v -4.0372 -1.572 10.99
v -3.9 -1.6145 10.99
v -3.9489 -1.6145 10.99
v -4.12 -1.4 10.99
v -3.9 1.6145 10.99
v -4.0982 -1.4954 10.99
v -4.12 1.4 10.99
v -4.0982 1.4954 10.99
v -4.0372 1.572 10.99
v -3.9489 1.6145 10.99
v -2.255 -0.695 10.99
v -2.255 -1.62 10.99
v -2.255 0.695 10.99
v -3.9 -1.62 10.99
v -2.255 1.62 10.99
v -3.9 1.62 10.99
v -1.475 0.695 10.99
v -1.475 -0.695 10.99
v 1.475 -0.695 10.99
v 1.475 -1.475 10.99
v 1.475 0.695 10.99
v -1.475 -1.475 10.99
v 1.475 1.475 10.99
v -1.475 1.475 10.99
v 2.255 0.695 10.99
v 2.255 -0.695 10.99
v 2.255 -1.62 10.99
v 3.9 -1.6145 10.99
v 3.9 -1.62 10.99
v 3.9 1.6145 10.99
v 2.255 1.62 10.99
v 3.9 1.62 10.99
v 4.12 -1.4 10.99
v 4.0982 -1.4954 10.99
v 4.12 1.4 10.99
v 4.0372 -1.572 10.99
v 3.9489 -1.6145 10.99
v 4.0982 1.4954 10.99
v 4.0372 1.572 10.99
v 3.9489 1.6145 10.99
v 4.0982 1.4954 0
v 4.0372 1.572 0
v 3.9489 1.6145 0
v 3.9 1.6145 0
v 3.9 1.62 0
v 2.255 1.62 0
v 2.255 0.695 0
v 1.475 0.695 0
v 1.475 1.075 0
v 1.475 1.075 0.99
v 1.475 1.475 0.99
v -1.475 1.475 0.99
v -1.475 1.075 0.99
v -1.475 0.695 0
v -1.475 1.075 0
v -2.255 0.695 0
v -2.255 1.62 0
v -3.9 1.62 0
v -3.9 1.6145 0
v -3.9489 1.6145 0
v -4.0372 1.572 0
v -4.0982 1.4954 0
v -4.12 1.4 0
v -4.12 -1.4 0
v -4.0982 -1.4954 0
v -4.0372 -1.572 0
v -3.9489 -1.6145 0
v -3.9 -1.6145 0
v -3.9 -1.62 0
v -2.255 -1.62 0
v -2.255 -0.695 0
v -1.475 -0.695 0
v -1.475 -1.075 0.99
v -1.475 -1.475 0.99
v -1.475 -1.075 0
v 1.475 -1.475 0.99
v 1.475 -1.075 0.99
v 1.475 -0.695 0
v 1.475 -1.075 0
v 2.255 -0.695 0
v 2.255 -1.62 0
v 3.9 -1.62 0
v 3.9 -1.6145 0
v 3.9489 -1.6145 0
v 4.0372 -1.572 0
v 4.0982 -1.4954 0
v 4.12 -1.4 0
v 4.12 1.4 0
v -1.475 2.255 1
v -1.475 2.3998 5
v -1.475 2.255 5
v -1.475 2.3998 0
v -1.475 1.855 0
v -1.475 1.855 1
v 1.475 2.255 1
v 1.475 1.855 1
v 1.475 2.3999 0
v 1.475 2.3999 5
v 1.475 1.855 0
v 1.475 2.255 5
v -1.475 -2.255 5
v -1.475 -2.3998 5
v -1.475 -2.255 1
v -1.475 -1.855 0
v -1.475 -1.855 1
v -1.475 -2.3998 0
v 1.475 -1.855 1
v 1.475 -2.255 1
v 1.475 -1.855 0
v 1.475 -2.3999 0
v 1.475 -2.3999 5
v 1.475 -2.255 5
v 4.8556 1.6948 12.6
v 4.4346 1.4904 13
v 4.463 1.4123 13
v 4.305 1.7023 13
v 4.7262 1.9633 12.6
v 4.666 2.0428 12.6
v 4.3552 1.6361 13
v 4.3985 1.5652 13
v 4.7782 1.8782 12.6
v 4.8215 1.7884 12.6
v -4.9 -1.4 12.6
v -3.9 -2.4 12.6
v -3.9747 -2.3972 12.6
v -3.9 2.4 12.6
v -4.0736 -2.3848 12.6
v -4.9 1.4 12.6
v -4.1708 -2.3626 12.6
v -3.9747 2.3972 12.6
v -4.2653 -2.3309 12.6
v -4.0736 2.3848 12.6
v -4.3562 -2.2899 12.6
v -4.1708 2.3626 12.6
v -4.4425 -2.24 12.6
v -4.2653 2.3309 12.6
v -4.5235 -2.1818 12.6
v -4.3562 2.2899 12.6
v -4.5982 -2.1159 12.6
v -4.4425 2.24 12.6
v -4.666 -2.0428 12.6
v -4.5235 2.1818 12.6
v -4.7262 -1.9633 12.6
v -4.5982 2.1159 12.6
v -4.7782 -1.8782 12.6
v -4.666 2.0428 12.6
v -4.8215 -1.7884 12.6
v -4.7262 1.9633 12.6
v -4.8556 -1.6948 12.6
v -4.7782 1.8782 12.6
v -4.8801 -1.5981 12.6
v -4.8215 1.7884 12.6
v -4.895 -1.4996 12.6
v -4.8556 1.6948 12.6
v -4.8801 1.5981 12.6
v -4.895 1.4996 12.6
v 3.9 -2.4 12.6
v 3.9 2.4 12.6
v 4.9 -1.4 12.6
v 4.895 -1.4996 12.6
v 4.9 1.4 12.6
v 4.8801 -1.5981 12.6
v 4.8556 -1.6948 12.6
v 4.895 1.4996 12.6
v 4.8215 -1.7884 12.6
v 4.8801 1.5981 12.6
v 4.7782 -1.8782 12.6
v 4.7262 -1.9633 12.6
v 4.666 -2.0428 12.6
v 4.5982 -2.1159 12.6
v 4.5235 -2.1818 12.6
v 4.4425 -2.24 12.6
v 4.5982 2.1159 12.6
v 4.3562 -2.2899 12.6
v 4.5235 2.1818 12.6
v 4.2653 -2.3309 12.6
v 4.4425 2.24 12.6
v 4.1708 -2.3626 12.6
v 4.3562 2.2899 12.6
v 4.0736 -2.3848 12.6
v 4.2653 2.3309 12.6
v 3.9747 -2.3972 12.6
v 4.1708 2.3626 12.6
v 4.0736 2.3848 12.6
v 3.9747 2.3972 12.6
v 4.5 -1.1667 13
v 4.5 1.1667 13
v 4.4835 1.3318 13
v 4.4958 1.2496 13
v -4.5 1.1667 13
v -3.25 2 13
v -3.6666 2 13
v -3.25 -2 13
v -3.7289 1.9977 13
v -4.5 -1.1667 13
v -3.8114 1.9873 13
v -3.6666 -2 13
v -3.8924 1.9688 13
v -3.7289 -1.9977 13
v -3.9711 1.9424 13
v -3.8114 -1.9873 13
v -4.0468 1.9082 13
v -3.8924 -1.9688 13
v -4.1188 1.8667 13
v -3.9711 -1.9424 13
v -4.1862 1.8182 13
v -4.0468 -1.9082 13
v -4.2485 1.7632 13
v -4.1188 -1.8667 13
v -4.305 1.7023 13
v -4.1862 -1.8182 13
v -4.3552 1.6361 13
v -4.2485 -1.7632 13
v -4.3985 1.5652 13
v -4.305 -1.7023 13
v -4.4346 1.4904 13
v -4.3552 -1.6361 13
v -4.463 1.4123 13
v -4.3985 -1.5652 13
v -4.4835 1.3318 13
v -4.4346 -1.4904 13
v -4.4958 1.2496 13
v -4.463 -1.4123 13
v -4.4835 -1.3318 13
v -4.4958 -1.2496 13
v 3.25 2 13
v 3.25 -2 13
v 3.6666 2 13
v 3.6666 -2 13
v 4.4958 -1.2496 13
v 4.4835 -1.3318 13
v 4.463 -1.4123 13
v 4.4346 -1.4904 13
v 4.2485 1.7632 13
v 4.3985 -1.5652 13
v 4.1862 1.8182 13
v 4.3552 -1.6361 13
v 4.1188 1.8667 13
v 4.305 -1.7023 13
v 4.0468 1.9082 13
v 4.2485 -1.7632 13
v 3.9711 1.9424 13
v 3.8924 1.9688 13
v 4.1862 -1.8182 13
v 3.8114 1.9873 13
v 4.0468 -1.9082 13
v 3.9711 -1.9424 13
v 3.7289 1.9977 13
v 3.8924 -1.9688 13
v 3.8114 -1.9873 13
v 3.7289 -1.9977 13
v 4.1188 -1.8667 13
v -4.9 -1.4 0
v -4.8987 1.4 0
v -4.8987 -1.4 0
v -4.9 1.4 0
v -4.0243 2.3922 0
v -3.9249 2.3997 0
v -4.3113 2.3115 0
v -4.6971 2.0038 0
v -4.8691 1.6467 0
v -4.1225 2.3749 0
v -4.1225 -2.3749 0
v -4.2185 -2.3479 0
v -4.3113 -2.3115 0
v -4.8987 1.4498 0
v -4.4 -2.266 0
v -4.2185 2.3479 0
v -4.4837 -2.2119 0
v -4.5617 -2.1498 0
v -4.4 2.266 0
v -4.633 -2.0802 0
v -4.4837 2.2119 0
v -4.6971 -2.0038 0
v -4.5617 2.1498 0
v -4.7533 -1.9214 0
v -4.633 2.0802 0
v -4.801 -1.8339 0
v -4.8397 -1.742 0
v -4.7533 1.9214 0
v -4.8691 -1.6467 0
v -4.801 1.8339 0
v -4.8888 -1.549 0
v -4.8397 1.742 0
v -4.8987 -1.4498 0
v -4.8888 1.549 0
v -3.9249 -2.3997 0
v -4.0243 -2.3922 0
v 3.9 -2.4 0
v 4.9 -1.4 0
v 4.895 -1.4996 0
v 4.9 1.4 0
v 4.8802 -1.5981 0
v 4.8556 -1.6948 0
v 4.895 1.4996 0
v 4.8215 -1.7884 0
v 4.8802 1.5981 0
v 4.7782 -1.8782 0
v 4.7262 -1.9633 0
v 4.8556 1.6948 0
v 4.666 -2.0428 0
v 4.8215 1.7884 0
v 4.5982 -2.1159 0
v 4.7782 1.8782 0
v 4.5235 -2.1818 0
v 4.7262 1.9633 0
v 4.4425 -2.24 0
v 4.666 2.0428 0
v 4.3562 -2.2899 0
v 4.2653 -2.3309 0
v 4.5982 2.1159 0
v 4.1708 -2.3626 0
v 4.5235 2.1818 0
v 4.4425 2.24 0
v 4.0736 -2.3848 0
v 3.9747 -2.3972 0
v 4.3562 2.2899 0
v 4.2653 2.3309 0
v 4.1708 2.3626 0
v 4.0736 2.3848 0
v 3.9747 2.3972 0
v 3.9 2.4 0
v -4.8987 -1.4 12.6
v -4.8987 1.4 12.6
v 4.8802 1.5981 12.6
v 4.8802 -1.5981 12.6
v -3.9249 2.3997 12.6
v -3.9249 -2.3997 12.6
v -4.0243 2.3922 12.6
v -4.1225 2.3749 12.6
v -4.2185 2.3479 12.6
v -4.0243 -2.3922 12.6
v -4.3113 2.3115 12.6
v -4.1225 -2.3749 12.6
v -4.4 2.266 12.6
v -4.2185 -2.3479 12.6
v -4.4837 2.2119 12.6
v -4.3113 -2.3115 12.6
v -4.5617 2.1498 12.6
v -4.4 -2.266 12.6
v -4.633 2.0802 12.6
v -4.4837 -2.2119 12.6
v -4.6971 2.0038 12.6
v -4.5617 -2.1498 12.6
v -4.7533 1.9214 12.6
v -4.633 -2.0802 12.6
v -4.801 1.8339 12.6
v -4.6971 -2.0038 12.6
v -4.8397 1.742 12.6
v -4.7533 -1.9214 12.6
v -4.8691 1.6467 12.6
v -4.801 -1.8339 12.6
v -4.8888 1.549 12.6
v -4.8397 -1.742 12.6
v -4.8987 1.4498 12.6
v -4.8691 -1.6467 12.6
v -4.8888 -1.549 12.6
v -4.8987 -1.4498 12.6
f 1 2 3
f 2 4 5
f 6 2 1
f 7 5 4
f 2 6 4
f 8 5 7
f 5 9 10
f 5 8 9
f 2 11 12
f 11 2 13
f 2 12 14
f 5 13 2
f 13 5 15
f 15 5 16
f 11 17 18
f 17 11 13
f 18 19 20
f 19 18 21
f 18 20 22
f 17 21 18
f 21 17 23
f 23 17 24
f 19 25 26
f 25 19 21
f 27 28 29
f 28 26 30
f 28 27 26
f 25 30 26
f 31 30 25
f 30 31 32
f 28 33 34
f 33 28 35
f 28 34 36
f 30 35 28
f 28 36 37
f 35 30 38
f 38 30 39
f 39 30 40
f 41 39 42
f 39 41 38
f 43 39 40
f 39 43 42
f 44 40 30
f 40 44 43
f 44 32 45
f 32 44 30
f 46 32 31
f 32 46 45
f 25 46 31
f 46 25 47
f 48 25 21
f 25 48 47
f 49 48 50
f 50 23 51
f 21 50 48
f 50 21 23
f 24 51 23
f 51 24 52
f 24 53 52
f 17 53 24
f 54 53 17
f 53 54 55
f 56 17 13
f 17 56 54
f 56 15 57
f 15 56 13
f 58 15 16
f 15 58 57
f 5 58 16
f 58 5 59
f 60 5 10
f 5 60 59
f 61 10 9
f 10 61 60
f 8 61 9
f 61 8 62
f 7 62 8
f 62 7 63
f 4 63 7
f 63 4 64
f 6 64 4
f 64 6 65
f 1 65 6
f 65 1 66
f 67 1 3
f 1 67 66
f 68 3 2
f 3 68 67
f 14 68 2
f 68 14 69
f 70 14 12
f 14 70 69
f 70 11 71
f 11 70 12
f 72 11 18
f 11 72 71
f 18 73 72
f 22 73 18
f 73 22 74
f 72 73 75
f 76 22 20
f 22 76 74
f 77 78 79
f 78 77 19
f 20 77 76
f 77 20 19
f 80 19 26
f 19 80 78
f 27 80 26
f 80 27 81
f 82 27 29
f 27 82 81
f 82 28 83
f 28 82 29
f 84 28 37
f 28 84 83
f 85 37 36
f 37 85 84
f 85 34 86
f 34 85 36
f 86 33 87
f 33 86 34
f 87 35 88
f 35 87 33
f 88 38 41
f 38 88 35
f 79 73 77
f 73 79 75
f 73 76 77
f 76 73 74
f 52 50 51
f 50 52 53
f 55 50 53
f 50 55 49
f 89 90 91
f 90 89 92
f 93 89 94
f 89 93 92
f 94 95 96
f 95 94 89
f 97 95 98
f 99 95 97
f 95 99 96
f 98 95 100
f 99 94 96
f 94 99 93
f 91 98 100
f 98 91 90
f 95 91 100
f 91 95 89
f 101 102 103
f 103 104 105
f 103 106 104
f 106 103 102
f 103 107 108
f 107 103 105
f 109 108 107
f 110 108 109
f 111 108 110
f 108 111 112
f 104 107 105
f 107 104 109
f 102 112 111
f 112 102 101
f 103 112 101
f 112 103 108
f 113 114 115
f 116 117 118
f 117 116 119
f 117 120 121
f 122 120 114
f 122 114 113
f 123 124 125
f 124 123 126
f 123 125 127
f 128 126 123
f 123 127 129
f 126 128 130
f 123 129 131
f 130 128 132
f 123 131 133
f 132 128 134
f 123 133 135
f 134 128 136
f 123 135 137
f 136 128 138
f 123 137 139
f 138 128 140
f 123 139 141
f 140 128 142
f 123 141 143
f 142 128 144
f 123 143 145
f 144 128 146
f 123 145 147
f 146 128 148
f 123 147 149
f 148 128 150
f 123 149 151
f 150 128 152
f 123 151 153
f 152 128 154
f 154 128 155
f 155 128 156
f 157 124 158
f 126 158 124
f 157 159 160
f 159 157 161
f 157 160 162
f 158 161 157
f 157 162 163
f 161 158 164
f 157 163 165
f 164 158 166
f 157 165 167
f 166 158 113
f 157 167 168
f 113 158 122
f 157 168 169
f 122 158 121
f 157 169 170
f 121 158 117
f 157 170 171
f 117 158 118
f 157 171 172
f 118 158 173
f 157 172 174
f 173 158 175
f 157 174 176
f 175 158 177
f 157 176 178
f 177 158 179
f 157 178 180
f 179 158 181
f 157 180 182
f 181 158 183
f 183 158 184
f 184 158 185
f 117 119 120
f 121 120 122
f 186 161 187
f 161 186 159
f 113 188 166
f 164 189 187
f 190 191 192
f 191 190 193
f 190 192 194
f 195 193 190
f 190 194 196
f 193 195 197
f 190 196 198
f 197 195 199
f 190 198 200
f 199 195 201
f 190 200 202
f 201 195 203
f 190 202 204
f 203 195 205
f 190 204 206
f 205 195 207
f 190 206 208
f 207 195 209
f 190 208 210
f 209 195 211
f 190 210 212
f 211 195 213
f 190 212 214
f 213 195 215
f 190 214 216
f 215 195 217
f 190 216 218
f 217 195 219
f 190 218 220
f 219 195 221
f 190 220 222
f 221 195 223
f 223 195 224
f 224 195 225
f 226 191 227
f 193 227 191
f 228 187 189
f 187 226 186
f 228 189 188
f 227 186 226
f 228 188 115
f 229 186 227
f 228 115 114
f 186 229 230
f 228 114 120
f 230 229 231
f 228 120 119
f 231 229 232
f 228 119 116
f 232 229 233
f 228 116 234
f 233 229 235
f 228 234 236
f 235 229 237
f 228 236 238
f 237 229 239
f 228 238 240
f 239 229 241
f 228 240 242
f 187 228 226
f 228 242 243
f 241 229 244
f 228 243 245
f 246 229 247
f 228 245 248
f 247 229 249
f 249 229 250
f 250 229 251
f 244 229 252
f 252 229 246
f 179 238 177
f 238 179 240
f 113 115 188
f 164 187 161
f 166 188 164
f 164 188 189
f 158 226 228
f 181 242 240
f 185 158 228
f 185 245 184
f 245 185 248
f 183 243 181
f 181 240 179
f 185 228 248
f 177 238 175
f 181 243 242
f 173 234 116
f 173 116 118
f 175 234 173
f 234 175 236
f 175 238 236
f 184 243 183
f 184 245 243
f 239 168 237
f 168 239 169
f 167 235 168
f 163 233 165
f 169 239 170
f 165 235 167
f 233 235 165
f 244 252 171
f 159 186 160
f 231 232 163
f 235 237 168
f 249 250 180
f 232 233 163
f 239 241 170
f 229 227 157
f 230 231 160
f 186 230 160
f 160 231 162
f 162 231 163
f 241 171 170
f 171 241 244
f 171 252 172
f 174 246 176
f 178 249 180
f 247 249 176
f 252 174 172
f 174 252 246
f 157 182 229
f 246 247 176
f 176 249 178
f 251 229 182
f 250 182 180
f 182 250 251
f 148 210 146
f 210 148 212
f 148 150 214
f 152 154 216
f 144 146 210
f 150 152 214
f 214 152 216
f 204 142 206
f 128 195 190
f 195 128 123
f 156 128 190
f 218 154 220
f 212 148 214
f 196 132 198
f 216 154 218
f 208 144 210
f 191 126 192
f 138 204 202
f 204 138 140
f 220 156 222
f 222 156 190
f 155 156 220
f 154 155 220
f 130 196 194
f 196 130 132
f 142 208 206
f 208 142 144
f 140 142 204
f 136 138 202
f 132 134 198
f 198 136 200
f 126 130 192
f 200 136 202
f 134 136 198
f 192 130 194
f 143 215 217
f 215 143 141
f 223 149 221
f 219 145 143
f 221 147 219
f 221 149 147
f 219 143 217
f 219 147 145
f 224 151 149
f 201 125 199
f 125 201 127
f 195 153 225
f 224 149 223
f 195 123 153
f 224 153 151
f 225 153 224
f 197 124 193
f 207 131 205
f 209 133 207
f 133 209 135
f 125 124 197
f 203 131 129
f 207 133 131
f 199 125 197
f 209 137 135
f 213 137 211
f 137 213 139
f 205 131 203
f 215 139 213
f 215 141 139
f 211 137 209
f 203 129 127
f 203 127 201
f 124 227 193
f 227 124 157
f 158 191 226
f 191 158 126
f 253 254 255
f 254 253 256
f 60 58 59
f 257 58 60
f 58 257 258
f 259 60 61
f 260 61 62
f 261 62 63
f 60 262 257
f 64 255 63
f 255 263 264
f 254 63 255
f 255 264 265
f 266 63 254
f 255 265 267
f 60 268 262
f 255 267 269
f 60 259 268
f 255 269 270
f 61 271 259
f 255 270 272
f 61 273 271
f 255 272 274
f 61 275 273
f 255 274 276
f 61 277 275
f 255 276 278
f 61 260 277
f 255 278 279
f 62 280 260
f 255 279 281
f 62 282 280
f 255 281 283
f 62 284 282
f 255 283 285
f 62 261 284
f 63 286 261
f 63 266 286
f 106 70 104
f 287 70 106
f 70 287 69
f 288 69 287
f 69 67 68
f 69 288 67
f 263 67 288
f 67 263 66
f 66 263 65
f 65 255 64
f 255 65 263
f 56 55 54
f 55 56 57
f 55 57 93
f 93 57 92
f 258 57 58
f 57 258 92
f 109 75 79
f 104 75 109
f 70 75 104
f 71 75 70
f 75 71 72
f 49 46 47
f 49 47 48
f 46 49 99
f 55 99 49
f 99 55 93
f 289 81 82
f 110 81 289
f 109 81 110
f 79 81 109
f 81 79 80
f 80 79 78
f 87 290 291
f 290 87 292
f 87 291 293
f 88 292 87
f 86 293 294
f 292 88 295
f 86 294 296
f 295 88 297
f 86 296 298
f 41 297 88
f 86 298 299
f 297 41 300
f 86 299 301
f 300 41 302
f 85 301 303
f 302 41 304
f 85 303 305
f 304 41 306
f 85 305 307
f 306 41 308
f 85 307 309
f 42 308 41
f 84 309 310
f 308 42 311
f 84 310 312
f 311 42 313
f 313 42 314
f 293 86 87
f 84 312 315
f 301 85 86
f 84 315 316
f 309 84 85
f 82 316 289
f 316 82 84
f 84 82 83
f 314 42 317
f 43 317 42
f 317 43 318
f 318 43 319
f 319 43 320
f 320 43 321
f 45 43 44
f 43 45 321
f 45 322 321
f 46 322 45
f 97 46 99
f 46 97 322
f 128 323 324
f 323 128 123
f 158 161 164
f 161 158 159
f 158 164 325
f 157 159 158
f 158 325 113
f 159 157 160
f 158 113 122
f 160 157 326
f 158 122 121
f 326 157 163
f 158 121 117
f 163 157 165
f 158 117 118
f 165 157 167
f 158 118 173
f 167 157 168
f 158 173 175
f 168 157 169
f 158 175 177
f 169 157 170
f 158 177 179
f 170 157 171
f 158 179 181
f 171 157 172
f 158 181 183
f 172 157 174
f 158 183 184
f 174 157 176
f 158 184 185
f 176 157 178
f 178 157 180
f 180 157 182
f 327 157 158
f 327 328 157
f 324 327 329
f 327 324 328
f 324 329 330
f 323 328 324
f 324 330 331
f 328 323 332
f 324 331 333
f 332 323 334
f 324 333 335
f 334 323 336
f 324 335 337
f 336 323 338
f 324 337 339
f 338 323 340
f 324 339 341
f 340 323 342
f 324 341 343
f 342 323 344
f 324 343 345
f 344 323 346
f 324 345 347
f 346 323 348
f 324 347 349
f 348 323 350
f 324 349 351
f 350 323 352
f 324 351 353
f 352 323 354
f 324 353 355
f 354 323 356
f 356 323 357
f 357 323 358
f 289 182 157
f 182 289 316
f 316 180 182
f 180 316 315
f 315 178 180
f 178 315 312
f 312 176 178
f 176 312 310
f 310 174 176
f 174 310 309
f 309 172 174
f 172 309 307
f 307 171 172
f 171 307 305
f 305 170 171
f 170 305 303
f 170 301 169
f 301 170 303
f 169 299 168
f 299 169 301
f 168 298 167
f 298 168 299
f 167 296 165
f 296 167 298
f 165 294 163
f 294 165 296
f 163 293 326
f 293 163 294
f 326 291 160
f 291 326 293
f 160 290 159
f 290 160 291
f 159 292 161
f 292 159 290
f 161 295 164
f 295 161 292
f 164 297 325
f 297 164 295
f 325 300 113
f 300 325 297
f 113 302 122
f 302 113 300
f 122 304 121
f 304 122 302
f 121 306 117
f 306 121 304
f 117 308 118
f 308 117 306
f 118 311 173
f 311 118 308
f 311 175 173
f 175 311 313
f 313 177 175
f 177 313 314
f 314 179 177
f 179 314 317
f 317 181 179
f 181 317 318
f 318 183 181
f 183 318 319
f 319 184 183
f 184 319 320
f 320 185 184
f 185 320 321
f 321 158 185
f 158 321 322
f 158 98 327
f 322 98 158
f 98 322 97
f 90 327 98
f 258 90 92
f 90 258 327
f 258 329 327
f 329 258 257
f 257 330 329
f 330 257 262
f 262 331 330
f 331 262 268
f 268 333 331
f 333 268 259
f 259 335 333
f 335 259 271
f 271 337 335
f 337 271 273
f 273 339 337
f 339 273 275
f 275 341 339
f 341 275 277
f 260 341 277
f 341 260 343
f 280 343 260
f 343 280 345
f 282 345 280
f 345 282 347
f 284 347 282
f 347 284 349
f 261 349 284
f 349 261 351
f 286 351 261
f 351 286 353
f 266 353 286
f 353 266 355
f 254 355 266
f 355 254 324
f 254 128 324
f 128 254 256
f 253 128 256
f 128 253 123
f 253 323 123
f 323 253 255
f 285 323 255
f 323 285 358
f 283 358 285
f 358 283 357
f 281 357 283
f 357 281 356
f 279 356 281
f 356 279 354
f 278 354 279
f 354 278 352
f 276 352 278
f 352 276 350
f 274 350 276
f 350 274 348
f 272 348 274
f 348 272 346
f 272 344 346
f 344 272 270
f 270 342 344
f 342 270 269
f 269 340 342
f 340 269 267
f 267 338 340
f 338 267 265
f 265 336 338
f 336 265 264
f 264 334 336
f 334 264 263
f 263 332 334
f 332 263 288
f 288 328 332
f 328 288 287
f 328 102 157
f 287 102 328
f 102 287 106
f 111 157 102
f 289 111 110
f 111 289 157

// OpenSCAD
L = 9.8;
W = 4.8;
H = 13;
R = 1;
$fa = 2;
$fs = 0.1;
PW = 2.95;
N = 0.39;   // nozzle
X = 1;
lock = 0.4;
tamper = 0.4;
/*****

Bed: 0 C°
Temp: 190 C°
Nozzle: 0.4 mm
Speed: 40 mm/s
Layer: 0.1 mm
Materialflow 105%
Retraction: all
Infill: 0%
Top/Bottom: 2 mm

We want 100% infill on the last 2 mm, and 0% below.
We can get this by setting infill to 0% and use
the top/bottom thing to create the infill. The geometry
does allow for infill in the lowest 2 mm, so the bottom
infill does not affect us.


*****/

module outside_profile(){
    square([L-2*R,W], center=true);
    square([L,W-2*R], center=true);
    translate([(L/2-R), (W/2-R)]) circle(r=R);
    translate([-(L/2-R), (W/2-R)]) circle(r=R);
    translate([(L/2-R), -(W/2-R)]) circle(r=R);
    translate([-(L/2-R), -(W/2-R)]) circle(r=R);
}

module outside(){
    linear_extrude(height=H-tamper ){ // X+1.9
        outside_profile();
    }
}

module tamper(){
    translate([0,+W/2,H])rotate([45,0,0])cube([20,2*tamper,2*tamper],center=true);
    translate([0,-W/2,H])rotate([45,0,0])cube([20,2*tamper,2*tamper],center=true);
    
    translate([+L/2,0,H])rotate([0,45,0])cube([2*tamper,20,2*tamper],center=true);
    translate([-L/2,0,H])rotate([0,45,0])cube([2*tamper,20,2*tamper],center=true);
}



module inside(){
    
    module cutout(){
        translate([0,-PW/2,X])
        rotate([90,0,90])
        linear_extrude(height=PW+0.2, center=true)
        polygon(points=[
            [-0.1,-1],
            [lock,-1],
            [lock,-0.5],
            [lock,0],
            [lock,0],
            [-0.1,0]
        ]);
    }
    
    module side(){
        difference(){
            union(){
                l = L - 4*N;
                w = W - 4*N;
                r = R - 2*N;
                square([l-2*r,w], center=true);
                square([l,w-2*r], center=true);
                translate([(L/2-R), (W/2-R)]) circle(r=r);
                translate([-(L/2-R), (W/2-R)]) circle(r=r);
                translate([(L/2-R), -(W/2-R)]) circle(r=r);
                translate([-(L/2-R), -(W/2-R)]) circle(r=r);
            }
            square([PW+4*N,100], center=true);
        }
    }
    
    
    
    difference(){
        linear_extrude(height=H-2, convexity=4){
            square([PW, PW], center=true);
            //translate([PW/2 + 2*N, -W/2+2*N]) square([L/2-PW/2-4*N, W-4*N]);
            //scale([-1,1,1])translate([PW/2 + 2*N, -W/2+2*N]) square([L/2-PW/2-4*N, W-4*N]);
            square([L-4*N, PW-4*N], center=true);
            side();
        }
        cutout();
        scale([1,-1,1])cutout();
    }
    
    

}

module roundtop(){
    module corner(){
        translate([-W/2,-W/2,0])
        linear_extrude(height=tamper, scale=(W-2*tamper)/W )
        intersection(){
            translate([-L/2+W/2,0,0])outside_profile();
            square(100,100);
        }
    }
    
    scale([ 1, 1, 1])translate([L/2, W/2])corner();
    scale([ 1,-1, 1])translate([L/2, W/2])corner();
    scale([-1, 1, 1])translate([L/2, W/2])corner();
    scale([-1,-1, 1])translate([L/2, W/2])corner();
    
    linear_extrude(height=tamper, scale=(W-2*tamper)/W )
    translate([0,0,0])square([L-2*R,W], center=true);
}

module backcut(){
    // these are to ensure a consistant wall thickness to ensure
    // that the cirtical parts can be printed without infill.
    module cut(from_z, to_z, depth){
        translate([-PW/2,PW/2+2*N-depth,from_z])
        cube([PW,10,to_z-from_z]);
    }
    
    cut(-0.01,1,lock);
    cut(1-0.01,5,0);
}
difference(){
    union(){
        translate([0,0,H-tamper])roundtop();
        outside(); 
    }
    translate([0,0,-0.01])inside();
    backcut();
    scale([1,-1,1])backcut();
    
    //tamper();
}
